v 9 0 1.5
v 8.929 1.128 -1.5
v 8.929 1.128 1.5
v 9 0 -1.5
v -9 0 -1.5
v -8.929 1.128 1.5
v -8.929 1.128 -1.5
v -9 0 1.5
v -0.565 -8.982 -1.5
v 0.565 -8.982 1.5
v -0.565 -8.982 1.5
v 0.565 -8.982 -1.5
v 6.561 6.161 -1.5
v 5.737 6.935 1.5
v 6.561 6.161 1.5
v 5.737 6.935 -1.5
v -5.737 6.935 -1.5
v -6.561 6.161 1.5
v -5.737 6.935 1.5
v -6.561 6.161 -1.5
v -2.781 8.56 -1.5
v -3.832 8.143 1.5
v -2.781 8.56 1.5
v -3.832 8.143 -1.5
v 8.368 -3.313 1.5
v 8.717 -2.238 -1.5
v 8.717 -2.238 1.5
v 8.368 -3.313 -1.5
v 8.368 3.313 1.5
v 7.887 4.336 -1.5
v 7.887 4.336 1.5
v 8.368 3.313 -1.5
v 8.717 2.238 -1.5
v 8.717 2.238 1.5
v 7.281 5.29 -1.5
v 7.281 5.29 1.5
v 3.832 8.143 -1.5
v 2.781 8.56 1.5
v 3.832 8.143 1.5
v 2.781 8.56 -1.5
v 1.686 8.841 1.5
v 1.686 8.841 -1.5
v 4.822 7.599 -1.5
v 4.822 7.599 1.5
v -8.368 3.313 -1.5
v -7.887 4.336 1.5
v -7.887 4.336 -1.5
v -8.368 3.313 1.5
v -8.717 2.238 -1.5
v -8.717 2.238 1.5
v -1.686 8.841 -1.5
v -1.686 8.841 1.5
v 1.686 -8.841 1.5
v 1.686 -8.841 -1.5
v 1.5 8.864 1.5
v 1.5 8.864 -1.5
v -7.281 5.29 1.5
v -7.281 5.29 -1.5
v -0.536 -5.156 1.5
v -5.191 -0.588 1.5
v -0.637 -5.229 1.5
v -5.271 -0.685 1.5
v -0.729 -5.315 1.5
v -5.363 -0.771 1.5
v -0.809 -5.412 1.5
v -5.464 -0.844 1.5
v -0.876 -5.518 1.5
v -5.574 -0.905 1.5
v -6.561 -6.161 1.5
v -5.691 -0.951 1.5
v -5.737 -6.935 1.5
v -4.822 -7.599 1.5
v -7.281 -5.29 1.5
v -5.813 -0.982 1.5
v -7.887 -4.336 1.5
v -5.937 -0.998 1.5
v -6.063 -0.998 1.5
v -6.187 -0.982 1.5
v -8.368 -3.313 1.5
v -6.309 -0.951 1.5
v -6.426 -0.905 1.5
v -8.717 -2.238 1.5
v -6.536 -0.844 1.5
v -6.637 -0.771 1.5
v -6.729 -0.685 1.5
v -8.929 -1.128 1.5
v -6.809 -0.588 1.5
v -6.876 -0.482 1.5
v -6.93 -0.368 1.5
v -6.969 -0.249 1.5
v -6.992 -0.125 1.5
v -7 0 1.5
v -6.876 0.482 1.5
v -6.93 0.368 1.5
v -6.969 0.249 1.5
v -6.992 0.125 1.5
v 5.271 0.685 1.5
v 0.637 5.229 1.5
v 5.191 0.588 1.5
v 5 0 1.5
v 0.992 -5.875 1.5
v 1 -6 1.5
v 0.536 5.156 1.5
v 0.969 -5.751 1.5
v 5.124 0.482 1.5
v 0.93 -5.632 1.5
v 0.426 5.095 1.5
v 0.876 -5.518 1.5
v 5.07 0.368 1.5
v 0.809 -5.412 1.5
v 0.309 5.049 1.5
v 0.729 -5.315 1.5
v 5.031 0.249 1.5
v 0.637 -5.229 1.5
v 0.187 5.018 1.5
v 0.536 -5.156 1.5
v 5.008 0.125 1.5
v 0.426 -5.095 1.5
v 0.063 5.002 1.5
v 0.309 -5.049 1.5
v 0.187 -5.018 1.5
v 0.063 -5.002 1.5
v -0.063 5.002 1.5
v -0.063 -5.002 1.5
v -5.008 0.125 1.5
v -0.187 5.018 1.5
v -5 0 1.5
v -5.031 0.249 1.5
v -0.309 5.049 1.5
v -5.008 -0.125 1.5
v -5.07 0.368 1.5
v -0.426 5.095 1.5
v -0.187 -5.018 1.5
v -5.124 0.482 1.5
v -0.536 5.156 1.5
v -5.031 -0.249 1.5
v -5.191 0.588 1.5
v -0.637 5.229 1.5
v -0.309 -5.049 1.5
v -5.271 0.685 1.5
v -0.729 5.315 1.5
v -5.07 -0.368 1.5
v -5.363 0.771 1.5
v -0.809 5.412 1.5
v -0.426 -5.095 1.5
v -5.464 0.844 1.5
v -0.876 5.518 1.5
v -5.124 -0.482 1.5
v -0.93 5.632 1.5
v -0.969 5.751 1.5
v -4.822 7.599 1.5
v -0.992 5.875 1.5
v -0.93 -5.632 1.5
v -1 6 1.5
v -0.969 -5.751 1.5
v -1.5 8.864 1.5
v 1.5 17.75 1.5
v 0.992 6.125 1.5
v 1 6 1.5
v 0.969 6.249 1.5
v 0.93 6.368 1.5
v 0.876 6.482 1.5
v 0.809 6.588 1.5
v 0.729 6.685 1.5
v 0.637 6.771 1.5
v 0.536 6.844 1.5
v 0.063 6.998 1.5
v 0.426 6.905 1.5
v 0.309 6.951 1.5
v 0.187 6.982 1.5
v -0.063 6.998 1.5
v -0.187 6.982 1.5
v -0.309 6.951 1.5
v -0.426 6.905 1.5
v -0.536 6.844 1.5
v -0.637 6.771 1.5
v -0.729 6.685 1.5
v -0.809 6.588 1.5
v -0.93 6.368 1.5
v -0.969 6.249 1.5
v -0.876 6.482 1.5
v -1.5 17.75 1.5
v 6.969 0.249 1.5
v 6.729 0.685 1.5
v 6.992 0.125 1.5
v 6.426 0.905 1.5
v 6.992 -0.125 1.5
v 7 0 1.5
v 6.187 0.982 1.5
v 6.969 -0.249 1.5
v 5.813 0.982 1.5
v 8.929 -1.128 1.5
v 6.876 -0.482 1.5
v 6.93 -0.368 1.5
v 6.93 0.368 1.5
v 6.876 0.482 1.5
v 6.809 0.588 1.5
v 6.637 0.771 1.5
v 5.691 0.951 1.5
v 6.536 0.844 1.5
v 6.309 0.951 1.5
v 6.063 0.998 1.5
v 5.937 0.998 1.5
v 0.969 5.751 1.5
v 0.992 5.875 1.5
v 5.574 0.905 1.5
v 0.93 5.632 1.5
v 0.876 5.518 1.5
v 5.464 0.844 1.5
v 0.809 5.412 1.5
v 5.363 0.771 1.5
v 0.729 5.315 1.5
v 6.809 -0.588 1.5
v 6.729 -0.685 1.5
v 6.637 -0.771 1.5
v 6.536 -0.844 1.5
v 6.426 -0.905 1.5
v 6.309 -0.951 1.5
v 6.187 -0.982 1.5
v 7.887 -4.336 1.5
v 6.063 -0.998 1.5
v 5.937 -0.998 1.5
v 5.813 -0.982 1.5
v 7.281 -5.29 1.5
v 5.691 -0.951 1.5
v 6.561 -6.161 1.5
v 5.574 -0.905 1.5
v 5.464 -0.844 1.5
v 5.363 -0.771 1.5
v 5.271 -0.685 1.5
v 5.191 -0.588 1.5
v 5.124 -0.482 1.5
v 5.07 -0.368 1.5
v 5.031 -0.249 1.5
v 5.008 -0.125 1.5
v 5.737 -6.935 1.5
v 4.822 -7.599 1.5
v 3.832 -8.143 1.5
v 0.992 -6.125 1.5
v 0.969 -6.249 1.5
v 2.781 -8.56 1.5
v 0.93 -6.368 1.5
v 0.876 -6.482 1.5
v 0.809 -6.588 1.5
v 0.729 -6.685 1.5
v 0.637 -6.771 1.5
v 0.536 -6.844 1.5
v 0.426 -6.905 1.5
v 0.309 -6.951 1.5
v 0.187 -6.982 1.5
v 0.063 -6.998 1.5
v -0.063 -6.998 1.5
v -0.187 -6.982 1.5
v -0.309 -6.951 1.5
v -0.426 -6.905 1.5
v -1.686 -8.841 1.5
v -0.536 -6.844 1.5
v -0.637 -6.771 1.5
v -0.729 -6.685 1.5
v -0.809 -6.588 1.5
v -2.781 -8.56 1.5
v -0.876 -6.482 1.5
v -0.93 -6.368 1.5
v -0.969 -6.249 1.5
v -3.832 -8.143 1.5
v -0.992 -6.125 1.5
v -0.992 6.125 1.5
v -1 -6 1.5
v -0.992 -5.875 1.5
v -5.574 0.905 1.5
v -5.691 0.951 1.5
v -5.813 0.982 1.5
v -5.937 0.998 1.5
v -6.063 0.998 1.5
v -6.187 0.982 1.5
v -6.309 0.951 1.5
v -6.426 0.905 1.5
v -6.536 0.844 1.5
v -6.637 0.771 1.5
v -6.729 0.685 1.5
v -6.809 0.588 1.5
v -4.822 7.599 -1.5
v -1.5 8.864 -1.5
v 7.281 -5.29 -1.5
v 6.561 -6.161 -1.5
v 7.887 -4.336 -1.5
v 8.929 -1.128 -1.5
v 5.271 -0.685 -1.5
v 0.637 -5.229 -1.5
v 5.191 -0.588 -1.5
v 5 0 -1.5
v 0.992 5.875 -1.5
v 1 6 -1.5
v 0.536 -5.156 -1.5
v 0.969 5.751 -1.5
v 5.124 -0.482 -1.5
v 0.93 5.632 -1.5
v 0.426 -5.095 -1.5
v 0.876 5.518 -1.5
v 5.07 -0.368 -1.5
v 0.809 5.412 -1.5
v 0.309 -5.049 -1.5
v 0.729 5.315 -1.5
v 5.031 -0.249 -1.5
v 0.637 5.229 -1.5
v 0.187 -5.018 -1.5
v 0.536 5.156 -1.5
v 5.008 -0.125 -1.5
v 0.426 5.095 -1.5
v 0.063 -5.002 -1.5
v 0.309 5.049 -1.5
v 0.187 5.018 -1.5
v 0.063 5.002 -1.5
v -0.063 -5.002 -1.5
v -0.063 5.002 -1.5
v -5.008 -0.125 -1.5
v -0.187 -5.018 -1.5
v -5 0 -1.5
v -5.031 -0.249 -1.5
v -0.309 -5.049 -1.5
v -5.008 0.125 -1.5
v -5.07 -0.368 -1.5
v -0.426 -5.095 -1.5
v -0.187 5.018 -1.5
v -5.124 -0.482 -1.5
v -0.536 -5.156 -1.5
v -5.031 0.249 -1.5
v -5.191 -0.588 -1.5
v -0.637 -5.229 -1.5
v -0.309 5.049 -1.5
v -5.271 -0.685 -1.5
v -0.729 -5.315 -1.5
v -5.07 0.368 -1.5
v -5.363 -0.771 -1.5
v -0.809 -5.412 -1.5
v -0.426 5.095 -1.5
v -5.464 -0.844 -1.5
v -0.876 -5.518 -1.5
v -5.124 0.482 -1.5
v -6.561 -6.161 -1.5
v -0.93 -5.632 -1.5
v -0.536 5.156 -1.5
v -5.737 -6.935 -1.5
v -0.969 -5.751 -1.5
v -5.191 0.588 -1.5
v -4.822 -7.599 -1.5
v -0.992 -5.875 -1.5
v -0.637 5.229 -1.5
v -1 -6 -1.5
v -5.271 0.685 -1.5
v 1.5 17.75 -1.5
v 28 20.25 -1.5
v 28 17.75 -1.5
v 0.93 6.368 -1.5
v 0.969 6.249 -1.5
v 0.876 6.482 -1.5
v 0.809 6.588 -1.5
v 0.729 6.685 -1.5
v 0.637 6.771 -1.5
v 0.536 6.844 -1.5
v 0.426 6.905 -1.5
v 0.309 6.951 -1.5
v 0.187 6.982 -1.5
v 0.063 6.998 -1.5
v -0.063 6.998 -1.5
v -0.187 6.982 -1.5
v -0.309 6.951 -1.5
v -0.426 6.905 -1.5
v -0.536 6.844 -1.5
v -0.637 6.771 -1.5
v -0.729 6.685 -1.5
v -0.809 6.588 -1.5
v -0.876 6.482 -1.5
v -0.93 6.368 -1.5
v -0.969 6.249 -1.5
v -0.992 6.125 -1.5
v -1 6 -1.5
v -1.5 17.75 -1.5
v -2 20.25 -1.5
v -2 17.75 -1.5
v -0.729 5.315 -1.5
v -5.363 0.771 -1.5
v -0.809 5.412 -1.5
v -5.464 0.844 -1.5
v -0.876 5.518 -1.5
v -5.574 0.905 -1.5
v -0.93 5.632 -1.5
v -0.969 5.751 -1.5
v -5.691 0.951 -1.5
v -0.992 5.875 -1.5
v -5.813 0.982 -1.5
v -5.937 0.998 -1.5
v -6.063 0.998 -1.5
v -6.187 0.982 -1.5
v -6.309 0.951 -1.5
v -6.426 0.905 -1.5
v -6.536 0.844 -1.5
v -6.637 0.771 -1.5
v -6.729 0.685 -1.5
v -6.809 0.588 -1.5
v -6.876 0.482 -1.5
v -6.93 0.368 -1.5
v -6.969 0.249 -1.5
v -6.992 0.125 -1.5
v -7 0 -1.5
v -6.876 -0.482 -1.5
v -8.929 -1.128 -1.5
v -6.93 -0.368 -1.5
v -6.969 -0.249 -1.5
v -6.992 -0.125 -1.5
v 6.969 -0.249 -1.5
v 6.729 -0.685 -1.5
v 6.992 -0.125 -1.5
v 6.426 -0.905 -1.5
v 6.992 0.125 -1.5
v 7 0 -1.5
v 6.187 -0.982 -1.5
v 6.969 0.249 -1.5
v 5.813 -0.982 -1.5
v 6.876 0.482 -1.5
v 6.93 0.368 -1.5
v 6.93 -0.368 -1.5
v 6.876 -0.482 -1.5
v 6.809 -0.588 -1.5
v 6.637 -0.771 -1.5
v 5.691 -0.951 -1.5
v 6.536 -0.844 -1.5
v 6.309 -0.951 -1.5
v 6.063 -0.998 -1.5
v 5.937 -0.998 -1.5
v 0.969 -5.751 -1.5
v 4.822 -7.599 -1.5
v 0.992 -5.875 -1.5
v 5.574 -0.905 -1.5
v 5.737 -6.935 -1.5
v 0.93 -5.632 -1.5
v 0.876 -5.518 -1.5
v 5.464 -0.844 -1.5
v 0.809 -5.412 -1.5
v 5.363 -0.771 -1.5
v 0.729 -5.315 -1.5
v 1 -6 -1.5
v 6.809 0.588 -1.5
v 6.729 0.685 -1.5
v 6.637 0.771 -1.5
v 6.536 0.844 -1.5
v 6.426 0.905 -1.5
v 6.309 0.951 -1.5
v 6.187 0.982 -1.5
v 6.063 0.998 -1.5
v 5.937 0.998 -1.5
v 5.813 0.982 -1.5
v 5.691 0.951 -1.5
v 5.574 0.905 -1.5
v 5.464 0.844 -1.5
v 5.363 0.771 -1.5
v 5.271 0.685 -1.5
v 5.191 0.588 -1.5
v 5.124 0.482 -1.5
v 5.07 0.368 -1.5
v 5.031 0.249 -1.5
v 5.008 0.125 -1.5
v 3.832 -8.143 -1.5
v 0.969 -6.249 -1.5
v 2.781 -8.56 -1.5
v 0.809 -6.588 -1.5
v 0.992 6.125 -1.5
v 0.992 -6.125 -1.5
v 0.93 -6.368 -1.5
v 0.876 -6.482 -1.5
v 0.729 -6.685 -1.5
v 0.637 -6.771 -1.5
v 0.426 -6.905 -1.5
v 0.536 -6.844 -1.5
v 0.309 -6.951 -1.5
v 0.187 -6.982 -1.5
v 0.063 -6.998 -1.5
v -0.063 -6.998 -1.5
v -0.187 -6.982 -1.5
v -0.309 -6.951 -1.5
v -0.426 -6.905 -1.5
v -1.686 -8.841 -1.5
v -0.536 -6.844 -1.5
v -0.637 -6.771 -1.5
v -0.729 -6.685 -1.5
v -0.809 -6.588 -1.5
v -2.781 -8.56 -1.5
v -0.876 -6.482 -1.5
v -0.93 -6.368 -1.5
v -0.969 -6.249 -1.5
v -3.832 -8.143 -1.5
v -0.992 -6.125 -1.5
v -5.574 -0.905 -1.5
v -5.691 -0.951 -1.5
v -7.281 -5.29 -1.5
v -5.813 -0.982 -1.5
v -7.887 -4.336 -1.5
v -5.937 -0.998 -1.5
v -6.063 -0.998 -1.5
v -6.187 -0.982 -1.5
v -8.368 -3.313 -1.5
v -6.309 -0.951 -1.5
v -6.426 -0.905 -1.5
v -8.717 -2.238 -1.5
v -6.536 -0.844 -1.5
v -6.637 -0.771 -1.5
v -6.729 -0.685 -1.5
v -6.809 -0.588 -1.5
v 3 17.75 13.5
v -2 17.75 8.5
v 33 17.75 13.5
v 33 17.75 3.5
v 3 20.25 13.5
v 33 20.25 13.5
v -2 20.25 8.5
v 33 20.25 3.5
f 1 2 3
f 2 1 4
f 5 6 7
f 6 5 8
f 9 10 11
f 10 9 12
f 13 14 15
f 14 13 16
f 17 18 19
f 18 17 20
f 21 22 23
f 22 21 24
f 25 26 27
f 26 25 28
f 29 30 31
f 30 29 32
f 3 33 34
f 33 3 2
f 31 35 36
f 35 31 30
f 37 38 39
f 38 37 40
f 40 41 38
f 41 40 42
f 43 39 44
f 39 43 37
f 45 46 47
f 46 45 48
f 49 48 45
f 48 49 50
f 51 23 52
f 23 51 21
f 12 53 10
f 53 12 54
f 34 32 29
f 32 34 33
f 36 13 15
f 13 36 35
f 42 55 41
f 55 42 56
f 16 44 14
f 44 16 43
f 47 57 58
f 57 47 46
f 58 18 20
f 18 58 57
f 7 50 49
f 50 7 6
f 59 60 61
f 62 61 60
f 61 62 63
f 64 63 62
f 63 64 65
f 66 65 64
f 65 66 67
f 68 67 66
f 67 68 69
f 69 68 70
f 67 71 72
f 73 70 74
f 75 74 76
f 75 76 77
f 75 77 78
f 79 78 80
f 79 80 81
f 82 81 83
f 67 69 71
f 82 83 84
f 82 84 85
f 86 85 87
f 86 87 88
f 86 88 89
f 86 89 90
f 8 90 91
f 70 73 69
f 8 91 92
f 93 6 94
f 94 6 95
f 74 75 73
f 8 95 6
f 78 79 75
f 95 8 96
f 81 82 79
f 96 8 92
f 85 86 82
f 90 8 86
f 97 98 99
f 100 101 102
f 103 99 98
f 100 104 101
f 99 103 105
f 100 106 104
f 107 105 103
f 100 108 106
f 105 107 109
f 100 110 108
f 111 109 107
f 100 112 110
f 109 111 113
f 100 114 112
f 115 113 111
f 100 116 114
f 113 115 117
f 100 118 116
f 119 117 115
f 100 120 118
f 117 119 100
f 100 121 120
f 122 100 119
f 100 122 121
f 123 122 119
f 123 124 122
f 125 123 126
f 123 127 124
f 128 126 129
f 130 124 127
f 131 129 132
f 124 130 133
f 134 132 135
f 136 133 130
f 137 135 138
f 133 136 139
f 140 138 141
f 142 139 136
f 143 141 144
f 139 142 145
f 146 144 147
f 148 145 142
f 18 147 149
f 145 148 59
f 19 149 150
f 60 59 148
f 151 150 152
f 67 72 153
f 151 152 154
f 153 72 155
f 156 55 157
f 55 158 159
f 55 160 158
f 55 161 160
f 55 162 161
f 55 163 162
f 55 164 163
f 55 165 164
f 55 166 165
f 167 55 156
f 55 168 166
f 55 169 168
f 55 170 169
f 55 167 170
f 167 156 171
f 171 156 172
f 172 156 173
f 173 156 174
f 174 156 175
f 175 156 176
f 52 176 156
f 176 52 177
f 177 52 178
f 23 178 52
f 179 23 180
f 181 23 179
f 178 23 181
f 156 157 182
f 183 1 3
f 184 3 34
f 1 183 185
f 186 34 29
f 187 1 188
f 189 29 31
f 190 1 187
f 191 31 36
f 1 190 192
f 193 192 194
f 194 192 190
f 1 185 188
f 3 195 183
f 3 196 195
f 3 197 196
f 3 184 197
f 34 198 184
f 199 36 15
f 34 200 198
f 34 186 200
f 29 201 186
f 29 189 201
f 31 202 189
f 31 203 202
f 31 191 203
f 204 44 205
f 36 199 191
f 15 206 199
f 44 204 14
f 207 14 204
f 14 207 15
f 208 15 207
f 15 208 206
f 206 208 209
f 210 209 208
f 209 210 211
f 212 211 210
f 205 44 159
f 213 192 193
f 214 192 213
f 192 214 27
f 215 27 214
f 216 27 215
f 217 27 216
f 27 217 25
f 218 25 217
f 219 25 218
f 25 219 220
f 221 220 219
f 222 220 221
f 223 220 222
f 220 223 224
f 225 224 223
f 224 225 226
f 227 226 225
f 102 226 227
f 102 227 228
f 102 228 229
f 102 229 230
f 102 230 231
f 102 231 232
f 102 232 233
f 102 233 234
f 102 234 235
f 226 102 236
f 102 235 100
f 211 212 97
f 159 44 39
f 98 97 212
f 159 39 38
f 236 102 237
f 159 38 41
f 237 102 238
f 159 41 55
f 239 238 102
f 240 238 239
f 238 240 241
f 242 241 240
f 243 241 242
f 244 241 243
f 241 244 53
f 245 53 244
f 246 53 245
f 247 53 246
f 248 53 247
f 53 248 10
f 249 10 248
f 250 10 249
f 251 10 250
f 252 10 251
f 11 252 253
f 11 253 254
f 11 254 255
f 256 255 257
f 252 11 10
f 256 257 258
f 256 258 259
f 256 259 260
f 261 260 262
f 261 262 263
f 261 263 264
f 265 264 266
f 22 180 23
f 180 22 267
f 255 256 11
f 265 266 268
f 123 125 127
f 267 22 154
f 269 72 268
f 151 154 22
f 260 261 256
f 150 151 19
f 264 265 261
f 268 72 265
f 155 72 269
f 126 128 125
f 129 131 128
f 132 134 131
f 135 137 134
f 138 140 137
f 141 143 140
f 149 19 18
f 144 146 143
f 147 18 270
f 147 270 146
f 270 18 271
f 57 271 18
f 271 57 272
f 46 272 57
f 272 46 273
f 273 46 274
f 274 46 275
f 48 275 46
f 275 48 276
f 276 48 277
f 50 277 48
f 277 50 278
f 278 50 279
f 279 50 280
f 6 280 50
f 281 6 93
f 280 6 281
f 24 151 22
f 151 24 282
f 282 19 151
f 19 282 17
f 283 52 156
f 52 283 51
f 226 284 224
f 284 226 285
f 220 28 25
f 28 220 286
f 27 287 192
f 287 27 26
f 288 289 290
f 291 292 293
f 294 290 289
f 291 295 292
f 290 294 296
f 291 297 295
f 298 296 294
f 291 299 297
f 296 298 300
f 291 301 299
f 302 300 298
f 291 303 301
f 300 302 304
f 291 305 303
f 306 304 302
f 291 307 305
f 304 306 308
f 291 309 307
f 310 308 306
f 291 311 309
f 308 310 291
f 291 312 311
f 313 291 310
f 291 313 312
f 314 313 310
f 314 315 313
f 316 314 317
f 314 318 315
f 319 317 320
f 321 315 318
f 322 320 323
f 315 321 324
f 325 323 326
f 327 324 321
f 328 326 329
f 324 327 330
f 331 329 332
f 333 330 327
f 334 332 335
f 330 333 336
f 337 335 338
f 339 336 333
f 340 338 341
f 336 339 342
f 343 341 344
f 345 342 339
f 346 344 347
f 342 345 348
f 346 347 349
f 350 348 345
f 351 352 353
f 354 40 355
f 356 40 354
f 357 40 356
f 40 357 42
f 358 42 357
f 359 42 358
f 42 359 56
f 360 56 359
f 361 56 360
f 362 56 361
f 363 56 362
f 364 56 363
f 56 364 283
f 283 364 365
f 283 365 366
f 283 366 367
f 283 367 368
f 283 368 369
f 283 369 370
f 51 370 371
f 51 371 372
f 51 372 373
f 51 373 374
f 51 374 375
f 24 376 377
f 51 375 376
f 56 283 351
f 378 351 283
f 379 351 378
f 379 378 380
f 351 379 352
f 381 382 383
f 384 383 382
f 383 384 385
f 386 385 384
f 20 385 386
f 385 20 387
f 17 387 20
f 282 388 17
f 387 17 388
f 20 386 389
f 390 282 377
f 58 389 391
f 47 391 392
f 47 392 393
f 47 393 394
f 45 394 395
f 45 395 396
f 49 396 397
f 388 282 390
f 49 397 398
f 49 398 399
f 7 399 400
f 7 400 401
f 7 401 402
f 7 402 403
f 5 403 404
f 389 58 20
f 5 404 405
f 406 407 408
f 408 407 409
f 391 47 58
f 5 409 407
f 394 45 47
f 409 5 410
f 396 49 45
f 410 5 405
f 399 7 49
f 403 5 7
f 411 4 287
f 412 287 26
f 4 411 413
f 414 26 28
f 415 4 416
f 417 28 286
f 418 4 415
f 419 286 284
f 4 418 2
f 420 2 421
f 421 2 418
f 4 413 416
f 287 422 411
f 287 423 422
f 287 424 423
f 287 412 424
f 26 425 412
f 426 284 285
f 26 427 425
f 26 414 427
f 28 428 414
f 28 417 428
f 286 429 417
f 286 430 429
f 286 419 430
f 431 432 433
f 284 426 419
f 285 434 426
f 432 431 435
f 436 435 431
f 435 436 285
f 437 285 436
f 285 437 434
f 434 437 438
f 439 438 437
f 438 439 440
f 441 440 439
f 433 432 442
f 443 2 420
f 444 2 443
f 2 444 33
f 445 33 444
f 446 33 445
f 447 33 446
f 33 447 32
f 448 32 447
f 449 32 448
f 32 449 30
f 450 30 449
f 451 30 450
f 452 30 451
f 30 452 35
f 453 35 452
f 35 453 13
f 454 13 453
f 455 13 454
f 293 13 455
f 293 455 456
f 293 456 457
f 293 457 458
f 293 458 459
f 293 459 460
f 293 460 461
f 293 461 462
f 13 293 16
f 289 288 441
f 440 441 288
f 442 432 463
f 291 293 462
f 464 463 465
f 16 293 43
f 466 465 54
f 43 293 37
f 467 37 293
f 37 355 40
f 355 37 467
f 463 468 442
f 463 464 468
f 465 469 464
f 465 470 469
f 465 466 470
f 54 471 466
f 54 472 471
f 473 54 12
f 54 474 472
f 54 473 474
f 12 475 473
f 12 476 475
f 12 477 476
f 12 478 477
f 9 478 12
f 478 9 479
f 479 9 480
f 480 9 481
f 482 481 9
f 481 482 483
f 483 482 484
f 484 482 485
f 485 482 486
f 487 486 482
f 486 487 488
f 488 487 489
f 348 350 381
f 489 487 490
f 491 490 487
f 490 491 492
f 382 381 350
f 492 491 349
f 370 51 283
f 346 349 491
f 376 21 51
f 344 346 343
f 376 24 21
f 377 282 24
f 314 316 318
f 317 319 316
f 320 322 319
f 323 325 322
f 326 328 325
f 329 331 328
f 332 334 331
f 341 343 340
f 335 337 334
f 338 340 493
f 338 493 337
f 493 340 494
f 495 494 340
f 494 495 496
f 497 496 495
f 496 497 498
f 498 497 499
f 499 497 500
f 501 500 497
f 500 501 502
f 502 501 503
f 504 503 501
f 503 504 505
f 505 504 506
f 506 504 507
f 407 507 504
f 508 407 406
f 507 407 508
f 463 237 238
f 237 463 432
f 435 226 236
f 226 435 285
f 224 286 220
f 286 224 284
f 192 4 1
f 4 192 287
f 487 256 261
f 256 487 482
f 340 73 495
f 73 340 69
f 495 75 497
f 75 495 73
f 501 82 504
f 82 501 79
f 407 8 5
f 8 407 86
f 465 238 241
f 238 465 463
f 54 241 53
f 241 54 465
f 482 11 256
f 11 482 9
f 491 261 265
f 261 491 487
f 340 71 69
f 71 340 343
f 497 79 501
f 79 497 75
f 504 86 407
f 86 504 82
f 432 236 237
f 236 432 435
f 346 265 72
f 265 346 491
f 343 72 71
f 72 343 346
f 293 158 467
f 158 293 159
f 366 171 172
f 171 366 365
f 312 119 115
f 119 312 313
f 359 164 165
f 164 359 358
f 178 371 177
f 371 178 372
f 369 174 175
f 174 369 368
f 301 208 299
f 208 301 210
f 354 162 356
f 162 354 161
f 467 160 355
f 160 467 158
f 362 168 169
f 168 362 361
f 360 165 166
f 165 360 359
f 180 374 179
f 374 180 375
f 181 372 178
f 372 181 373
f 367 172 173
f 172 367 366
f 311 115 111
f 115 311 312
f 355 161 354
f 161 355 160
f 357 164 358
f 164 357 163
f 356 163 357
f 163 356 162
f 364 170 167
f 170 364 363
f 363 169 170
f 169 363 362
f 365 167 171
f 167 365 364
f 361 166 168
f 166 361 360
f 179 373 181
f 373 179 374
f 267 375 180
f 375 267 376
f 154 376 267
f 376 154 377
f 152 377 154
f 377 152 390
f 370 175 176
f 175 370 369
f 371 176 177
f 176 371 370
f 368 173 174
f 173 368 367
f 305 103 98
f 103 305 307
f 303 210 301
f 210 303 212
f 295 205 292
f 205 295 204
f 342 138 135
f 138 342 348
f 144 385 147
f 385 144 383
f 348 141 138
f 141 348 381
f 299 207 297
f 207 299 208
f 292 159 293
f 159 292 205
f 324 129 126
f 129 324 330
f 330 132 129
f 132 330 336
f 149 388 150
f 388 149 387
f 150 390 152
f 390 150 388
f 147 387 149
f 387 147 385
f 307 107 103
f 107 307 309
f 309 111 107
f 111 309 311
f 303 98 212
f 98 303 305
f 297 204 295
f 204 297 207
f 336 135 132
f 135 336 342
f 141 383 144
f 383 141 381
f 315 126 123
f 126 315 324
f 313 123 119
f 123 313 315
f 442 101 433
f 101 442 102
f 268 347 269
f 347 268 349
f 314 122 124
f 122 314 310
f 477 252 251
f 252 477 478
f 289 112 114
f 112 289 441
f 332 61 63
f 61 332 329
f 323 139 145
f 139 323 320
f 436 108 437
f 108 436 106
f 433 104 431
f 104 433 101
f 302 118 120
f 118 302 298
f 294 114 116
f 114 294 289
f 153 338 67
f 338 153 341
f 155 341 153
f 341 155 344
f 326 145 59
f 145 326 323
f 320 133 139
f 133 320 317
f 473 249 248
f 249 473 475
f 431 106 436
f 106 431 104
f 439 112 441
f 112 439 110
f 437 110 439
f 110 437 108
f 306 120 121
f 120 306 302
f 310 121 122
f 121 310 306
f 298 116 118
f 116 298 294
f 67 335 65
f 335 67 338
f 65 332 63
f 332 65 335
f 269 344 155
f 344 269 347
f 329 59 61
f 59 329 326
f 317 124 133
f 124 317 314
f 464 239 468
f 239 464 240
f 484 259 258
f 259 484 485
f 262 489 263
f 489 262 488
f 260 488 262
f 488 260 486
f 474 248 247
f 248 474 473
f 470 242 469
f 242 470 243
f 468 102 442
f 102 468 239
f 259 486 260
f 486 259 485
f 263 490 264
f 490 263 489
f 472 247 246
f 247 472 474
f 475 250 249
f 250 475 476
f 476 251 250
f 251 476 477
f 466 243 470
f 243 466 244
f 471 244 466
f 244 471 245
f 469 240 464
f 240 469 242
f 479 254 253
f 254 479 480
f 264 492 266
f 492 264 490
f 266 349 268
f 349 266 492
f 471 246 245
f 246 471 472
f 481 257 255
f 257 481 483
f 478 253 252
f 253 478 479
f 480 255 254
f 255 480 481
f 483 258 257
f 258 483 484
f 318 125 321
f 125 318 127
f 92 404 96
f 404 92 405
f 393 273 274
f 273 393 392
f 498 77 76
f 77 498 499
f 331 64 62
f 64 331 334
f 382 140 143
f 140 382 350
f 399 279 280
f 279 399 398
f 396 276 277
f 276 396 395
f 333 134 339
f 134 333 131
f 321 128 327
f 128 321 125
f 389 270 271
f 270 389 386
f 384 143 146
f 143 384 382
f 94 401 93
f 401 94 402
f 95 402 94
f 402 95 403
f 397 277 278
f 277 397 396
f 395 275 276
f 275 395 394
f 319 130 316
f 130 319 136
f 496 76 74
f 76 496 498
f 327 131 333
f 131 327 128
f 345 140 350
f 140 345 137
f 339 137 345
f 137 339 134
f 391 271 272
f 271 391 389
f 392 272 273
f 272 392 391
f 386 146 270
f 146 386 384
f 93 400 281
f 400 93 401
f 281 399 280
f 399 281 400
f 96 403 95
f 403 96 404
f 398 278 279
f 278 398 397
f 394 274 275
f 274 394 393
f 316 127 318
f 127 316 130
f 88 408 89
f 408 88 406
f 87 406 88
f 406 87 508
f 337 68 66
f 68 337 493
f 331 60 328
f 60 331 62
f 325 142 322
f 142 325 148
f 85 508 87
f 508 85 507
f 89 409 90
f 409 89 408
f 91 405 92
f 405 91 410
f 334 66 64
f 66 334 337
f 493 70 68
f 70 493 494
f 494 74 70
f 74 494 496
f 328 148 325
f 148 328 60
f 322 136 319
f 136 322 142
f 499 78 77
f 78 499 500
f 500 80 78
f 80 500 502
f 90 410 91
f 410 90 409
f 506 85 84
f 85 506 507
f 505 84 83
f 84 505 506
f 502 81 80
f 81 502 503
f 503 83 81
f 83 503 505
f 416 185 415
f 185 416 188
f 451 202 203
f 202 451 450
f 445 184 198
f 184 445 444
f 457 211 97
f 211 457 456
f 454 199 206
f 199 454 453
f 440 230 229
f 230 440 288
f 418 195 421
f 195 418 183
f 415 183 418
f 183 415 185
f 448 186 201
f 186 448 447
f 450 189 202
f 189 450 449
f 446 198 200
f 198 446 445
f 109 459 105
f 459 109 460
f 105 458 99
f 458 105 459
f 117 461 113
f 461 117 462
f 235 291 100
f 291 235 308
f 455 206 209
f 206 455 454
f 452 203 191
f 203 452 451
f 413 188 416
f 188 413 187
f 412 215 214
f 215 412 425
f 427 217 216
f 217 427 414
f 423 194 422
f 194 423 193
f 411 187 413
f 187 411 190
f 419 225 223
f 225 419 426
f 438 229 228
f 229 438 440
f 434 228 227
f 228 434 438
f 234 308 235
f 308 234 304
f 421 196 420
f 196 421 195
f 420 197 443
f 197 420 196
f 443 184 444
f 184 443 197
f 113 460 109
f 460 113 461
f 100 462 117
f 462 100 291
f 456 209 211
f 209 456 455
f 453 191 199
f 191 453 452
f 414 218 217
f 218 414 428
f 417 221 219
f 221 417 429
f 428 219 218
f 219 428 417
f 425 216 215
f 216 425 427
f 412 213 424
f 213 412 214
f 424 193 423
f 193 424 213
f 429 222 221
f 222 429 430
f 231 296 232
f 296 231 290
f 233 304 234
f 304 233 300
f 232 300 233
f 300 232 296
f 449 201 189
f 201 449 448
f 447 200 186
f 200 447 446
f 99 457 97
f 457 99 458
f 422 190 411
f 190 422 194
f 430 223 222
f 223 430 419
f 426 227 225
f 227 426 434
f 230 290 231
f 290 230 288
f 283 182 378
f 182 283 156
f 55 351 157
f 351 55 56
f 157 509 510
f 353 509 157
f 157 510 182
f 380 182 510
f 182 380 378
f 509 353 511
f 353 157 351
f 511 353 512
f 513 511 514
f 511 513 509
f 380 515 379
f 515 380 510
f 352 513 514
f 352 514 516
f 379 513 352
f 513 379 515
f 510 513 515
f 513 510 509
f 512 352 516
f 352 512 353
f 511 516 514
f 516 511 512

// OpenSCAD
$fn=50;
difference(){
cylinder(h=3,r=9,center=true);
    translate([0,6,0])
cylinder(h=5,r=1,center=true);
    translate([0,-6,0])
cylinder(h=5,r=1,center=true);
    translate([-6,0,0])
cylinder(h=5,r=1,center=true);
    translate([6,0,0])
cylinder(h=5,r=1,center=true);
}

    translate([0,14,0])
cube([3, 12, 3], center=true);


l = 30; w = 2.5; h = 10; 
translate([13,19,3.5])
hull() { cube ([l,w,h], center=true); 
translate([5,0,5]) 
cube ([l,w,h], center=true); }
